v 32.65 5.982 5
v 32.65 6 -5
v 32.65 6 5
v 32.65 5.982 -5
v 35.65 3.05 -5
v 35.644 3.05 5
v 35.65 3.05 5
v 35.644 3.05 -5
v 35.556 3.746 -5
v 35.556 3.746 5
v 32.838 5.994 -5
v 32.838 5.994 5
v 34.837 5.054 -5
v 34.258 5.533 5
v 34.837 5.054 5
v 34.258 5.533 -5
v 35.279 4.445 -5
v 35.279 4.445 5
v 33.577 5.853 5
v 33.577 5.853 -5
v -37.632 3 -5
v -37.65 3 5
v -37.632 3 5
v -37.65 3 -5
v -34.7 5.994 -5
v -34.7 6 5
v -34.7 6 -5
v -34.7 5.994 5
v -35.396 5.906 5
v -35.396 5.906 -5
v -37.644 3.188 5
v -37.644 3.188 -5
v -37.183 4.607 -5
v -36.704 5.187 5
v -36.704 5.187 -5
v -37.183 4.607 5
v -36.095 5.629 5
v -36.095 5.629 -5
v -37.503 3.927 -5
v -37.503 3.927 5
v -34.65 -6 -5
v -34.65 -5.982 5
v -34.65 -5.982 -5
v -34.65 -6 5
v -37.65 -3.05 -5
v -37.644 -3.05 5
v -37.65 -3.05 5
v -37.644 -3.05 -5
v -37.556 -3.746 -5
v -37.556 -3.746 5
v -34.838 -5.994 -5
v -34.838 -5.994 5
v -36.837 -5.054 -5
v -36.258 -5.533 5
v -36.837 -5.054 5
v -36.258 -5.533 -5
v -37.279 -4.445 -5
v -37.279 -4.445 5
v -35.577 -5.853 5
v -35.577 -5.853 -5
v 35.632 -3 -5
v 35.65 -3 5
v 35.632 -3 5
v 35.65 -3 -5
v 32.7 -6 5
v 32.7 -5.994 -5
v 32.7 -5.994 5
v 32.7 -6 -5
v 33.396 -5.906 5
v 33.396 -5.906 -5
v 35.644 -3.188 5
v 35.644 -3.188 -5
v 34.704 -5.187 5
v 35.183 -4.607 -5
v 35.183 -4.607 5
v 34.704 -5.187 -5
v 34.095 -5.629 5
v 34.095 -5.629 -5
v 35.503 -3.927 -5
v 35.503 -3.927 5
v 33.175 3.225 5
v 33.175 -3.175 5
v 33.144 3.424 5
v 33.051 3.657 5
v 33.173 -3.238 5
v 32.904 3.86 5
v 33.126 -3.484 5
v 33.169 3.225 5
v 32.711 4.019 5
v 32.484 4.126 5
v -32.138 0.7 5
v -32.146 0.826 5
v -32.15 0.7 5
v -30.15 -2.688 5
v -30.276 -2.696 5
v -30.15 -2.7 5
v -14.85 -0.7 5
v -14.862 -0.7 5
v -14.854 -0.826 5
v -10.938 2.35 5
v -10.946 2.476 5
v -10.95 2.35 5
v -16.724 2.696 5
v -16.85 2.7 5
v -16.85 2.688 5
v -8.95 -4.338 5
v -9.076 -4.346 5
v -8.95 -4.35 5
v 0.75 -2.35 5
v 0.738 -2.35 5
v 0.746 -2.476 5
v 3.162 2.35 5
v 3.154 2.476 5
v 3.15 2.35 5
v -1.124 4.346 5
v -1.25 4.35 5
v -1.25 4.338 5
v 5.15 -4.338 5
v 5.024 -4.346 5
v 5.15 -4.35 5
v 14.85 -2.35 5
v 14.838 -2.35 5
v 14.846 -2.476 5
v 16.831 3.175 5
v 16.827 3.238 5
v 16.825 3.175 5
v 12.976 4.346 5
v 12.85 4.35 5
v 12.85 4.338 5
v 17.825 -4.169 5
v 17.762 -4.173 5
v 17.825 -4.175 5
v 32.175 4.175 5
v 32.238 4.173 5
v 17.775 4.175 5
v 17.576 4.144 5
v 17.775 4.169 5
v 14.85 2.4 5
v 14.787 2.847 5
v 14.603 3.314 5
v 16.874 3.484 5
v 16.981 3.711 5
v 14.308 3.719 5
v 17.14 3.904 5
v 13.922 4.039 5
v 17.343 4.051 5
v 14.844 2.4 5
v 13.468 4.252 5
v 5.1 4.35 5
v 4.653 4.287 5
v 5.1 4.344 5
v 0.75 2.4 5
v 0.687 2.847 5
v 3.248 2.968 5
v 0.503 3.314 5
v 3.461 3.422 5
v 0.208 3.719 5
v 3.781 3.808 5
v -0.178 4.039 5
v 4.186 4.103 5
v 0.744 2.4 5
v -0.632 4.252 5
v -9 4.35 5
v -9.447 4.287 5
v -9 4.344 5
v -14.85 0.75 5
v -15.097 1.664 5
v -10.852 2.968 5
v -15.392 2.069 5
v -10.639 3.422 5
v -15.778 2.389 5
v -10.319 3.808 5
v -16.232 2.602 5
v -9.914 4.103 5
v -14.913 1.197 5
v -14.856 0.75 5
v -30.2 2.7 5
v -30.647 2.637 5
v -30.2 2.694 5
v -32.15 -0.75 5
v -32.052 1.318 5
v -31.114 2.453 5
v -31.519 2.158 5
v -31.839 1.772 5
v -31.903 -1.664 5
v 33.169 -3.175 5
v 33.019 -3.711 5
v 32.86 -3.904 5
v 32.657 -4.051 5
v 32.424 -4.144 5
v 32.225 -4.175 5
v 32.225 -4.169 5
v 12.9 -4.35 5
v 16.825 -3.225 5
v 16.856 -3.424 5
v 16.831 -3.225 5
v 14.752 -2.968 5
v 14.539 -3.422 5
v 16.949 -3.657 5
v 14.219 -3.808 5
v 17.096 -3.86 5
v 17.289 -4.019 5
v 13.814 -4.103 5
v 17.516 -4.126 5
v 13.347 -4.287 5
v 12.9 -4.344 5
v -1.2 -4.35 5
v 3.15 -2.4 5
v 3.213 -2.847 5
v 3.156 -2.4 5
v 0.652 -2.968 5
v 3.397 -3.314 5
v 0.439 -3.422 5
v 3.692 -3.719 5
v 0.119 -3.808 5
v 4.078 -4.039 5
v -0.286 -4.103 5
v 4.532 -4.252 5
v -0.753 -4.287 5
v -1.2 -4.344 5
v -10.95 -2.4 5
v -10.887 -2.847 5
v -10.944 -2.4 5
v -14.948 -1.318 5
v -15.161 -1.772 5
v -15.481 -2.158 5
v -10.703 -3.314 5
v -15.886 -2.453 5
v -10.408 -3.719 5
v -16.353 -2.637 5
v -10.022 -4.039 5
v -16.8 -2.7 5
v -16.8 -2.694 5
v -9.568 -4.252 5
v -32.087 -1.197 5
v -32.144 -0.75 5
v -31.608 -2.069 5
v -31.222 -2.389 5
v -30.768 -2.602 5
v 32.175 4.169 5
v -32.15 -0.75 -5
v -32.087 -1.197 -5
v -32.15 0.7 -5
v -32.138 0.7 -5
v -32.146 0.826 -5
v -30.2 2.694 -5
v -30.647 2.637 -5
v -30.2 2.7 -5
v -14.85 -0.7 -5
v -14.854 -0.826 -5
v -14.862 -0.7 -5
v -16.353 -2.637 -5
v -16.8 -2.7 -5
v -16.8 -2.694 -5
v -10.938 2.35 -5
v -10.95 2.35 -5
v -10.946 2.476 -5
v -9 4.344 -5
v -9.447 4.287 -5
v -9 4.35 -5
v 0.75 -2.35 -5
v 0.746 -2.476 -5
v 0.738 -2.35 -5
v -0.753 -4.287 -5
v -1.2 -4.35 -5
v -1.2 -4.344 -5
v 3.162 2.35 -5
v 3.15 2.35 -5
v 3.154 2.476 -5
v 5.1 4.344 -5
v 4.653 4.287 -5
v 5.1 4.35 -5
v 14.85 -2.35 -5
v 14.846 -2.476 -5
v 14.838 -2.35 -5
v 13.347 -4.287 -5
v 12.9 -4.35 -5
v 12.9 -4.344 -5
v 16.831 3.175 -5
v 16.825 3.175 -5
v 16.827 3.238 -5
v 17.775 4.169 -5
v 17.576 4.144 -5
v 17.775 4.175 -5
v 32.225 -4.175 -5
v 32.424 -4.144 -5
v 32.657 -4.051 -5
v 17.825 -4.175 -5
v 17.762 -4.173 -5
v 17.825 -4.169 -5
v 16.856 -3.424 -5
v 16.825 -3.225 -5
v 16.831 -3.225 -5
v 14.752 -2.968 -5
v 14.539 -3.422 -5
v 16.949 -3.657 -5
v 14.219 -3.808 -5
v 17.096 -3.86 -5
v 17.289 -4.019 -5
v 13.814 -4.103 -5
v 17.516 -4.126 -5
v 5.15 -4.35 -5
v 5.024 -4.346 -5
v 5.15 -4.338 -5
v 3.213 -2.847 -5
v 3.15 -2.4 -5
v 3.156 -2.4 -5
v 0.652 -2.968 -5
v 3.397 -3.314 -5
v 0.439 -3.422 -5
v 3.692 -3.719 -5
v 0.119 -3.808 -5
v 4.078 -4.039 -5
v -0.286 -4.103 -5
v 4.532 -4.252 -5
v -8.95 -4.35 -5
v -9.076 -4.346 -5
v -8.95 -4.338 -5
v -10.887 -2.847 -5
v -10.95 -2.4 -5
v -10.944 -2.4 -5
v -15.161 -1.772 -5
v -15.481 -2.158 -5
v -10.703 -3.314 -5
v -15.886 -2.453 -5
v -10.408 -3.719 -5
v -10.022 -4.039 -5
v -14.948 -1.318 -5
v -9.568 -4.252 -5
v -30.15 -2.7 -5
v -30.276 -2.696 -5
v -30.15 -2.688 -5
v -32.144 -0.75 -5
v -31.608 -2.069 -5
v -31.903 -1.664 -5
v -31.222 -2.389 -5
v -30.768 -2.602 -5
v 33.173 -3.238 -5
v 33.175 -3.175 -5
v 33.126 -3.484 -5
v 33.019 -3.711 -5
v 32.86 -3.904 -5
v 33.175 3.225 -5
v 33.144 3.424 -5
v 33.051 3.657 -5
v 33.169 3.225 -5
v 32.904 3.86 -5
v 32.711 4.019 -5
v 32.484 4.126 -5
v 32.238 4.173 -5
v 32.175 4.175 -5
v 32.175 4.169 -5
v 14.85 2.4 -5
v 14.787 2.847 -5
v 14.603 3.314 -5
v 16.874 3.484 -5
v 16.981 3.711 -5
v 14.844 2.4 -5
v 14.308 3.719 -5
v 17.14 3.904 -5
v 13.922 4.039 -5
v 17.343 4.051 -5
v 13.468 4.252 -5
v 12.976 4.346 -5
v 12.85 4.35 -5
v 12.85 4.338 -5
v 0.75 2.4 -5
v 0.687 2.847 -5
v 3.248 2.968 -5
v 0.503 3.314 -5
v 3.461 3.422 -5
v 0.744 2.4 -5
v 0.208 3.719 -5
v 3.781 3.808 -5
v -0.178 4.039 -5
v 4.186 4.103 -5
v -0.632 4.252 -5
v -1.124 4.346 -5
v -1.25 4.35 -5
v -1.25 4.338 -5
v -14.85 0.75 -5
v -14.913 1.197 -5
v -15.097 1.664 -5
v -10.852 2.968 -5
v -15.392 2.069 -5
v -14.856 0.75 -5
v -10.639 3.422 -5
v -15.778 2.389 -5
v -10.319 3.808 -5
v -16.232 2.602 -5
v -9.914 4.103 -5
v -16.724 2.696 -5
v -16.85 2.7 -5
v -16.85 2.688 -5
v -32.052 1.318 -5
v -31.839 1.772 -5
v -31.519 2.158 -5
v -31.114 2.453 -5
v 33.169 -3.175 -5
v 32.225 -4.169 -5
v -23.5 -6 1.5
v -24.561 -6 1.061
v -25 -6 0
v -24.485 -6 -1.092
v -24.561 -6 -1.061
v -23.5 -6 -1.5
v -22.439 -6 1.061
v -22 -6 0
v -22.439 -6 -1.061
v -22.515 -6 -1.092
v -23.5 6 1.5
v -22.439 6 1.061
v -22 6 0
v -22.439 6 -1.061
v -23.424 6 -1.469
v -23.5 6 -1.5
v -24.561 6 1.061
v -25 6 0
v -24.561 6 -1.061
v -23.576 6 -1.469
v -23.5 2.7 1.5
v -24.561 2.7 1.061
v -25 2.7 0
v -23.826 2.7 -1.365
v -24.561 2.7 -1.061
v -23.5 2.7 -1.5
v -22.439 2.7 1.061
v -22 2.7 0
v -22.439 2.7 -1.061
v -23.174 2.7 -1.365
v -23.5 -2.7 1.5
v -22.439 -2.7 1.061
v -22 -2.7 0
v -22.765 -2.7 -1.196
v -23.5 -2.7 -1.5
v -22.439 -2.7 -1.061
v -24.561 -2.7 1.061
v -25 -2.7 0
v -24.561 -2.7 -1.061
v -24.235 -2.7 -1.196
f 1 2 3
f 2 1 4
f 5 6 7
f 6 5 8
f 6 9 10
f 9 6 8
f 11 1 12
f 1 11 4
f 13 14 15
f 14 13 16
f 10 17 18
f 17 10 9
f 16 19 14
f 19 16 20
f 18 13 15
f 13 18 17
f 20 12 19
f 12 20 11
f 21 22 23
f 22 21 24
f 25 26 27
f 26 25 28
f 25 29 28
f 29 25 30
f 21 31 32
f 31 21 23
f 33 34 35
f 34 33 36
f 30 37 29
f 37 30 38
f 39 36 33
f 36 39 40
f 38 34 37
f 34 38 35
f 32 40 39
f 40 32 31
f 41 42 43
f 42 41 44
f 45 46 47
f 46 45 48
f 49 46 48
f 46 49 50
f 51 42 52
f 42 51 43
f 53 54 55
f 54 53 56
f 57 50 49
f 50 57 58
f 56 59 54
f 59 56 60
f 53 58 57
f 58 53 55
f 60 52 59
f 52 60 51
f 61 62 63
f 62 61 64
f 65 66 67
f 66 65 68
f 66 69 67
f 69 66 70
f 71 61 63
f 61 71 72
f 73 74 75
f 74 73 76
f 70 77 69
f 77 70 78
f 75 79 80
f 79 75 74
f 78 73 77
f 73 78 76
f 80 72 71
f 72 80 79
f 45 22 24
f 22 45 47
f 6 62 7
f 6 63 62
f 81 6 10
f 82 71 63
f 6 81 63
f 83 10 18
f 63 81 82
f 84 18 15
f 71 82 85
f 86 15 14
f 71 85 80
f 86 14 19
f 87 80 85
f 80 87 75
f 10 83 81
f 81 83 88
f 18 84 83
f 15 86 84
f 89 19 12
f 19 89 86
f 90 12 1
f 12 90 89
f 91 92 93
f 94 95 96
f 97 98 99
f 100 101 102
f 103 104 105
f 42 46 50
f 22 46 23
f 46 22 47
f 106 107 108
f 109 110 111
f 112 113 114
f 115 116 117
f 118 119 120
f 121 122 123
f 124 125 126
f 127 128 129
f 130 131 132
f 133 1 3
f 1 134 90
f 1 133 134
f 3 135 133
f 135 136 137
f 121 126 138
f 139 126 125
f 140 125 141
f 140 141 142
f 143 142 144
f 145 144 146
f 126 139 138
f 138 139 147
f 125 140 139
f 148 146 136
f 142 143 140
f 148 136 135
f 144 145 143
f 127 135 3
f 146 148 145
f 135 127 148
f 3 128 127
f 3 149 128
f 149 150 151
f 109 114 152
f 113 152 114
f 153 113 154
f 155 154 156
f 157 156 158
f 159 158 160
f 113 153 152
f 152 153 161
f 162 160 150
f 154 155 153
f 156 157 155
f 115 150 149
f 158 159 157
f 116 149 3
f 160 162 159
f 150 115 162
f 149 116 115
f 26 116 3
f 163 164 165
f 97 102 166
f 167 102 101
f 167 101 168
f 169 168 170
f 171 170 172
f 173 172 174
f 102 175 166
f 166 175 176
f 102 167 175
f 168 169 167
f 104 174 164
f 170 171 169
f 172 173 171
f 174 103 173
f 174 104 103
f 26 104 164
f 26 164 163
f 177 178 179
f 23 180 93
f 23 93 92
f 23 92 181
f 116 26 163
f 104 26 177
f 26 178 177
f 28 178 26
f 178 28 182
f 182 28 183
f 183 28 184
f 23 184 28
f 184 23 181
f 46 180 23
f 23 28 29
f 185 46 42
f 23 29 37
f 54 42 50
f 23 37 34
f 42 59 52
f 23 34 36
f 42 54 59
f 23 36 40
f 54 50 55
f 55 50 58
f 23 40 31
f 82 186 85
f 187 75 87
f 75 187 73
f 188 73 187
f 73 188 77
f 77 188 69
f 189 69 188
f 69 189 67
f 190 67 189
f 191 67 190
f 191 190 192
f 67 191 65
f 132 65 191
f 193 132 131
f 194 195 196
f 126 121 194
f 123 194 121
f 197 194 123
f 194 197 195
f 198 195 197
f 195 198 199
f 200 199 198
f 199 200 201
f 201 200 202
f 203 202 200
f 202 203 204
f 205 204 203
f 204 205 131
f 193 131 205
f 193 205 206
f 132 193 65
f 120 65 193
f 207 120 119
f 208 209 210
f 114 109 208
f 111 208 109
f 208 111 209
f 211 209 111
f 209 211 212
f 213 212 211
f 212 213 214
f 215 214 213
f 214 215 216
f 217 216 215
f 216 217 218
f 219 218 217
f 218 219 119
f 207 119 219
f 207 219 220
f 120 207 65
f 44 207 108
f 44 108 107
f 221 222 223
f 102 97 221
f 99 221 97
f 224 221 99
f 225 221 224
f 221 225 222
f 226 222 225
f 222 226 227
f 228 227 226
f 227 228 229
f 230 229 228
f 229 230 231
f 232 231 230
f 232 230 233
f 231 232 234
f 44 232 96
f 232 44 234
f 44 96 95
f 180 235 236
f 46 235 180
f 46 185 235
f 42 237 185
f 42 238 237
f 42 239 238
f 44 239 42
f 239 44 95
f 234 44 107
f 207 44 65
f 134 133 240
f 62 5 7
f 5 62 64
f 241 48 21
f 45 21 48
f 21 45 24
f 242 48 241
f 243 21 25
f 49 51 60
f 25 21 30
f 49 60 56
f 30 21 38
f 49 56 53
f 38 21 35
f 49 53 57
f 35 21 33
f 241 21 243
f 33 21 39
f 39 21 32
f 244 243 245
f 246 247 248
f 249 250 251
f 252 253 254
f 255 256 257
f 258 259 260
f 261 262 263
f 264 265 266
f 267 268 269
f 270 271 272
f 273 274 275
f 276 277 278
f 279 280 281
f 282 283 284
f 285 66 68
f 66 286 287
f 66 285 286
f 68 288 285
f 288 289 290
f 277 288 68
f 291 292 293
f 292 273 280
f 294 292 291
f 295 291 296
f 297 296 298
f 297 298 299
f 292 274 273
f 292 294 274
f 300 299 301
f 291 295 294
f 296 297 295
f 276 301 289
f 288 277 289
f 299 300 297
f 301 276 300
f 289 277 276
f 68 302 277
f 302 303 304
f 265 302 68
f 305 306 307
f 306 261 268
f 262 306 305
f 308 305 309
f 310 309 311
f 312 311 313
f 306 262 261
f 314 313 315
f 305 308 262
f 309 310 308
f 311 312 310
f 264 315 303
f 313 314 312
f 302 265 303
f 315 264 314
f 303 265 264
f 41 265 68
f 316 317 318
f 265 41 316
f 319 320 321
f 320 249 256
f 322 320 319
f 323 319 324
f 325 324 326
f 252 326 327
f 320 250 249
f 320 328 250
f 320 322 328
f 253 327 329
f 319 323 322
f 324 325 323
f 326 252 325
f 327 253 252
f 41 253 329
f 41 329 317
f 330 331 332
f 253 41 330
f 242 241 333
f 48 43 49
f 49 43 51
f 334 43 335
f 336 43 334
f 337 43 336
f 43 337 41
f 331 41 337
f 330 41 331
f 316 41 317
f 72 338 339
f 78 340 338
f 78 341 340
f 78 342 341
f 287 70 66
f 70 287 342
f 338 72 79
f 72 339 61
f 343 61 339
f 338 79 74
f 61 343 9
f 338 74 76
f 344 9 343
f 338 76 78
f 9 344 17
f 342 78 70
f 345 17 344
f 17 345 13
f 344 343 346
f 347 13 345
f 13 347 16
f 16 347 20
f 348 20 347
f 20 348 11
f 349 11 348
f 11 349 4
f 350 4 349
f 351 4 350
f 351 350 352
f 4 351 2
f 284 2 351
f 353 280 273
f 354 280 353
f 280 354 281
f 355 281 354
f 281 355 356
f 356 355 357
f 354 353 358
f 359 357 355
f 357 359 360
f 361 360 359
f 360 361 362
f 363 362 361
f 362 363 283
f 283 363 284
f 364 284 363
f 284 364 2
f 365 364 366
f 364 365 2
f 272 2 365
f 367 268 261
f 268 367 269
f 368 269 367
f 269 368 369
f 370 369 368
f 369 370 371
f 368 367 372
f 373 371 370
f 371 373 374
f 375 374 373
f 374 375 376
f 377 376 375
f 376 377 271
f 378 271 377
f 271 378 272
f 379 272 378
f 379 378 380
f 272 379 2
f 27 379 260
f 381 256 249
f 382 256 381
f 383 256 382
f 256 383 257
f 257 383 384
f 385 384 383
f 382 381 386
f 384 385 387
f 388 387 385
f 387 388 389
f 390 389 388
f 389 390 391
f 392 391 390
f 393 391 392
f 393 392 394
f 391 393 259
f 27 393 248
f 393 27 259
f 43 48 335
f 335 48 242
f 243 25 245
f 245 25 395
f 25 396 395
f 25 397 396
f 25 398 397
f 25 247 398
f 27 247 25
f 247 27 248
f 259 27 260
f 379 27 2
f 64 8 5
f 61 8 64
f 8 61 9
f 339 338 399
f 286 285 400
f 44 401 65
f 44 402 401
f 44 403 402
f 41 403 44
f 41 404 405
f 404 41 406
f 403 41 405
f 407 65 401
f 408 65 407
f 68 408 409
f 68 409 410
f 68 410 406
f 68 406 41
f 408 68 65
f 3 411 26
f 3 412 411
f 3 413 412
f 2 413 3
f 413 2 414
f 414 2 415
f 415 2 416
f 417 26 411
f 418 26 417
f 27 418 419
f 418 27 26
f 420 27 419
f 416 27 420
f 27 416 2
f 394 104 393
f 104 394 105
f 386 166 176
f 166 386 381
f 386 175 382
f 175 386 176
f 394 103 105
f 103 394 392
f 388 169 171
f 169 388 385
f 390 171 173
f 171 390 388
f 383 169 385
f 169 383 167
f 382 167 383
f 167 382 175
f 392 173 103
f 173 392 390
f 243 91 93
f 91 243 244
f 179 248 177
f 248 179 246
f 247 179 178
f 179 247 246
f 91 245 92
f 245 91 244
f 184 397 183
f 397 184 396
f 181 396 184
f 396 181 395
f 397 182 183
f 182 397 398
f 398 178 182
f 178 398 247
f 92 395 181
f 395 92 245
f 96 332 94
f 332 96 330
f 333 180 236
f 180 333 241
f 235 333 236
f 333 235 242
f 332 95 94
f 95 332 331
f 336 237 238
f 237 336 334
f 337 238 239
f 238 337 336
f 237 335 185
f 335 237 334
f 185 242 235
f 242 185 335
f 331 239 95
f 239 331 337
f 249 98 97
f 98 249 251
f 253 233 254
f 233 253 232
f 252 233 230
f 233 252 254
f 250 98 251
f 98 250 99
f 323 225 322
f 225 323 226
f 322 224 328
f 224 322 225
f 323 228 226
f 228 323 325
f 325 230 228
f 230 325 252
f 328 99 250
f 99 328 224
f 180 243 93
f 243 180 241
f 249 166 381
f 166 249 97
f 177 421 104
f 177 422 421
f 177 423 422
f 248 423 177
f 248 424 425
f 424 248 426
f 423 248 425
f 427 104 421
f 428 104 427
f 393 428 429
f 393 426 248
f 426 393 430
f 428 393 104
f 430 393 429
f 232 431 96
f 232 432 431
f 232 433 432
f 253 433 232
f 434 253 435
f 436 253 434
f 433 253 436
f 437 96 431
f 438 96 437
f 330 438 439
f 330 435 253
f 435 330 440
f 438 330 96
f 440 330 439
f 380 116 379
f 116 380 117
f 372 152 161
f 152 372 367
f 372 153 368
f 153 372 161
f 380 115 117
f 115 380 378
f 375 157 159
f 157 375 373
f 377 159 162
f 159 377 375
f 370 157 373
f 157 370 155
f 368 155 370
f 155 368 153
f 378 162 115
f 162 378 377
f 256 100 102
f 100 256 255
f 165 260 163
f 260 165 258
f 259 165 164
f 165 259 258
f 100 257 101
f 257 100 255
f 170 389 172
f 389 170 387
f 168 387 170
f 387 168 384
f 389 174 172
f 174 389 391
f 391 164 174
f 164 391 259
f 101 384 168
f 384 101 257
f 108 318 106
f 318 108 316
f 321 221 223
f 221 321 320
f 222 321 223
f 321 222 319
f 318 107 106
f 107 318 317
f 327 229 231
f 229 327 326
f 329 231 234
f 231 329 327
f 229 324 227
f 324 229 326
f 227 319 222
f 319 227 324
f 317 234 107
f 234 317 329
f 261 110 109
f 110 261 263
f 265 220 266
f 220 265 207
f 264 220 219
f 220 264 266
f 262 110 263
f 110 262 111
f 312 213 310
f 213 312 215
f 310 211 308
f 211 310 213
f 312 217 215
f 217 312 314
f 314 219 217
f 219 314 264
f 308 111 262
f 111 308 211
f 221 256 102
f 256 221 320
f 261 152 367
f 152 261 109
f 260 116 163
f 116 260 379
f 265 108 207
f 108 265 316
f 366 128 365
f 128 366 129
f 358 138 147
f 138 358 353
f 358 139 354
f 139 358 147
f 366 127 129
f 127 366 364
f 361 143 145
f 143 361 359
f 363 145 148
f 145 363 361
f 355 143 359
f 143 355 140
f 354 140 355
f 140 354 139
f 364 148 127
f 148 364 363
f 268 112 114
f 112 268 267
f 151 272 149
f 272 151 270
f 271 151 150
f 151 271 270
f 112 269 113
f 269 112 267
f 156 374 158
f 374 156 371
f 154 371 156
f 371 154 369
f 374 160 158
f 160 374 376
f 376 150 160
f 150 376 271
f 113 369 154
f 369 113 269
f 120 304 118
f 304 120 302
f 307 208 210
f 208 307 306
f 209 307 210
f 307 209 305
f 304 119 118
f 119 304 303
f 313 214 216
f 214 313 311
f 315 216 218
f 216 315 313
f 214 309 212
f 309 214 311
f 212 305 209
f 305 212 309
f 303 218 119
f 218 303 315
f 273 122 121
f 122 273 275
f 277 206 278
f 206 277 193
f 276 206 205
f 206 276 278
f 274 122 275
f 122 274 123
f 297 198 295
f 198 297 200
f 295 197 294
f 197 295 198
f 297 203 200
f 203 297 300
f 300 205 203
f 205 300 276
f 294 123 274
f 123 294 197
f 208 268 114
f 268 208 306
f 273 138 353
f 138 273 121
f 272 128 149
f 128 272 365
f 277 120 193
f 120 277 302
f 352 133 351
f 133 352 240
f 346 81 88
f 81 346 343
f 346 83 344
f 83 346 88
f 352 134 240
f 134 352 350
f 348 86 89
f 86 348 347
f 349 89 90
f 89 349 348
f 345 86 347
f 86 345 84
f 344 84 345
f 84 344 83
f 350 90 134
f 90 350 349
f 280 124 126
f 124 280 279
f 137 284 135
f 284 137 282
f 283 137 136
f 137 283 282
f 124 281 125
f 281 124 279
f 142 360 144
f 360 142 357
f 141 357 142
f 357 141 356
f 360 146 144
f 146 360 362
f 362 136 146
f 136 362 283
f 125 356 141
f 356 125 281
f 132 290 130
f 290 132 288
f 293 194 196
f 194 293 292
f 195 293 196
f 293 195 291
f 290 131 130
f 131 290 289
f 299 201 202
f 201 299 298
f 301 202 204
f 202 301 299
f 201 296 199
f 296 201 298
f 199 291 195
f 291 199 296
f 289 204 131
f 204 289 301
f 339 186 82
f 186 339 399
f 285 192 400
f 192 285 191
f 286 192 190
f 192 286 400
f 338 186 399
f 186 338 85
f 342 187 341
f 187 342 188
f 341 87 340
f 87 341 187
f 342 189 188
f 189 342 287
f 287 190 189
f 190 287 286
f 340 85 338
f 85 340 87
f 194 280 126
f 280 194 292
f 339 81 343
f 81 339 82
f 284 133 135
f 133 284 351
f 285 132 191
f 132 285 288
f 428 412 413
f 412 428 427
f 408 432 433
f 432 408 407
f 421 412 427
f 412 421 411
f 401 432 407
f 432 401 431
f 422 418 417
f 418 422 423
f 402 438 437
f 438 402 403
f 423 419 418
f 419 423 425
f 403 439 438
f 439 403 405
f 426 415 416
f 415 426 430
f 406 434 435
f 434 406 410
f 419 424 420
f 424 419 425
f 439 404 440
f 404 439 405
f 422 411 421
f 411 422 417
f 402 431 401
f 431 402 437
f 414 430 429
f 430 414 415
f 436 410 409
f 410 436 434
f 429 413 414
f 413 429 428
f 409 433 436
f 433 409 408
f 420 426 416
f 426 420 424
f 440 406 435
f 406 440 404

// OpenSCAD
// file: roundCornersCube.scad
/*
http://codeviewer.org/view/code:1b36 
Copyright (C) 2011 Sergio Vilches
This program is free software: you can redistribute it and/or modify it under the terms of the GNU General Public License as published by the Free Software Foundation, either version 3 of the License, or (at your option) any later version.
This program is distributed in the hope that it will be useful, but WITHOUT ANY WARRANTY; without even the implied warranty of MERCHANTABILITY or FITNESS FOR A PARTICULAR PURPOSE. See the GNU General Public License for more details. You should have received a copy of the GNU General Public License along with this program. If not, see <http://www.gnu.org/licenses/>.
Contact: s.vilches.e@gmail.com


    ----------------------------------------------------------- 
                 Round Corners Cube (Extruded)                
      roundCornersCube(x,y,z,r) Where:                        
         - x = Xdir width                                     
         - y = Ydir width                                     
         - z = Height of the cube                             
         - r = Rounding radious                               
                                                              
      Example: roundCornerCube(10,10,2,1);                    
     *Some times it's needed to use F6 to see good results!   
 	 ----------------------------------------------------------- 
*/
// Test it!
// roundCornersCube(10,5,2,1);


module createMeniscus(h,radius) // This module creates the shape that needs to be substracted from a cube to make its corners rounded.
difference(){        //This shape is basicly the difference between a quarter of cylinder and a cube
   translate([radius/2+0.1,radius/2+0.1,0]){
      cube([radius+0.2,radius+0.1,h+0.2],center=true);         // All that 0.x numbers are to avoid "ghost boundaries" when substracting
   }

   cylinder(h=h+0.2,r=radius,$fn = 25,center=true);
}


module roundCornersCube(x,y,z,r)  // Now we just substract the shape we have created in the four corners
difference(){
   cube([x,y,z], center=true);

translate([x/2-r,y/2-r]){  // We move to the first corner (x,y)
      rotate(0){  
         createMeniscus(z,r); // And substract the meniscus
      }
   }
   translate([-x/2+r,y/2-r]){ // To the second corner (-x,y)
      rotate(90){
         createMeniscus(z,r); // But this time we have to rotate the meniscus 90 deg
      }
   }
      translate([-x/2+r,-y/2+r]){ // ... 
      rotate(180){
         createMeniscus(z,r);
      }
   }
      translate([x/2-r,-y/2+r]){
      rotate(270){
         createMeniscus(z,r);
      }
   }
}
// main file
include <roundCornersCube.scad>

difference() {
	// Widget Outline
	translate([-1,0,0]) {
		roundCornersCube(73.3,12,10,3); //80,12,10,3
	}

	// MagSafe 2 Plug
	translate([-23.5,0,1]) {
		roundCornersCube(17.3,5.4,12,2);
	}

        // MagSafe 2 LED Hole
        translate([-23.5,7,0]) {
            rotate([90,0,0])
                cylinder(r=1.5,h=14,$fn=8);
        }

	// LMP DisplayPort to HDMI Converter
	translate([-5.1,0,1]) {
		roundCornersCube(11.7,8.7,12,2);
	}

	// Apple Ethernet Converter
	translate([9,0,1]) {
		roundCornersCube(11.7,8.7,12,2);
	}

	// USB Plug
	translate([25,0,1]) {
		roundCornersCube(16.35,8.35,12,1);
	}
}
